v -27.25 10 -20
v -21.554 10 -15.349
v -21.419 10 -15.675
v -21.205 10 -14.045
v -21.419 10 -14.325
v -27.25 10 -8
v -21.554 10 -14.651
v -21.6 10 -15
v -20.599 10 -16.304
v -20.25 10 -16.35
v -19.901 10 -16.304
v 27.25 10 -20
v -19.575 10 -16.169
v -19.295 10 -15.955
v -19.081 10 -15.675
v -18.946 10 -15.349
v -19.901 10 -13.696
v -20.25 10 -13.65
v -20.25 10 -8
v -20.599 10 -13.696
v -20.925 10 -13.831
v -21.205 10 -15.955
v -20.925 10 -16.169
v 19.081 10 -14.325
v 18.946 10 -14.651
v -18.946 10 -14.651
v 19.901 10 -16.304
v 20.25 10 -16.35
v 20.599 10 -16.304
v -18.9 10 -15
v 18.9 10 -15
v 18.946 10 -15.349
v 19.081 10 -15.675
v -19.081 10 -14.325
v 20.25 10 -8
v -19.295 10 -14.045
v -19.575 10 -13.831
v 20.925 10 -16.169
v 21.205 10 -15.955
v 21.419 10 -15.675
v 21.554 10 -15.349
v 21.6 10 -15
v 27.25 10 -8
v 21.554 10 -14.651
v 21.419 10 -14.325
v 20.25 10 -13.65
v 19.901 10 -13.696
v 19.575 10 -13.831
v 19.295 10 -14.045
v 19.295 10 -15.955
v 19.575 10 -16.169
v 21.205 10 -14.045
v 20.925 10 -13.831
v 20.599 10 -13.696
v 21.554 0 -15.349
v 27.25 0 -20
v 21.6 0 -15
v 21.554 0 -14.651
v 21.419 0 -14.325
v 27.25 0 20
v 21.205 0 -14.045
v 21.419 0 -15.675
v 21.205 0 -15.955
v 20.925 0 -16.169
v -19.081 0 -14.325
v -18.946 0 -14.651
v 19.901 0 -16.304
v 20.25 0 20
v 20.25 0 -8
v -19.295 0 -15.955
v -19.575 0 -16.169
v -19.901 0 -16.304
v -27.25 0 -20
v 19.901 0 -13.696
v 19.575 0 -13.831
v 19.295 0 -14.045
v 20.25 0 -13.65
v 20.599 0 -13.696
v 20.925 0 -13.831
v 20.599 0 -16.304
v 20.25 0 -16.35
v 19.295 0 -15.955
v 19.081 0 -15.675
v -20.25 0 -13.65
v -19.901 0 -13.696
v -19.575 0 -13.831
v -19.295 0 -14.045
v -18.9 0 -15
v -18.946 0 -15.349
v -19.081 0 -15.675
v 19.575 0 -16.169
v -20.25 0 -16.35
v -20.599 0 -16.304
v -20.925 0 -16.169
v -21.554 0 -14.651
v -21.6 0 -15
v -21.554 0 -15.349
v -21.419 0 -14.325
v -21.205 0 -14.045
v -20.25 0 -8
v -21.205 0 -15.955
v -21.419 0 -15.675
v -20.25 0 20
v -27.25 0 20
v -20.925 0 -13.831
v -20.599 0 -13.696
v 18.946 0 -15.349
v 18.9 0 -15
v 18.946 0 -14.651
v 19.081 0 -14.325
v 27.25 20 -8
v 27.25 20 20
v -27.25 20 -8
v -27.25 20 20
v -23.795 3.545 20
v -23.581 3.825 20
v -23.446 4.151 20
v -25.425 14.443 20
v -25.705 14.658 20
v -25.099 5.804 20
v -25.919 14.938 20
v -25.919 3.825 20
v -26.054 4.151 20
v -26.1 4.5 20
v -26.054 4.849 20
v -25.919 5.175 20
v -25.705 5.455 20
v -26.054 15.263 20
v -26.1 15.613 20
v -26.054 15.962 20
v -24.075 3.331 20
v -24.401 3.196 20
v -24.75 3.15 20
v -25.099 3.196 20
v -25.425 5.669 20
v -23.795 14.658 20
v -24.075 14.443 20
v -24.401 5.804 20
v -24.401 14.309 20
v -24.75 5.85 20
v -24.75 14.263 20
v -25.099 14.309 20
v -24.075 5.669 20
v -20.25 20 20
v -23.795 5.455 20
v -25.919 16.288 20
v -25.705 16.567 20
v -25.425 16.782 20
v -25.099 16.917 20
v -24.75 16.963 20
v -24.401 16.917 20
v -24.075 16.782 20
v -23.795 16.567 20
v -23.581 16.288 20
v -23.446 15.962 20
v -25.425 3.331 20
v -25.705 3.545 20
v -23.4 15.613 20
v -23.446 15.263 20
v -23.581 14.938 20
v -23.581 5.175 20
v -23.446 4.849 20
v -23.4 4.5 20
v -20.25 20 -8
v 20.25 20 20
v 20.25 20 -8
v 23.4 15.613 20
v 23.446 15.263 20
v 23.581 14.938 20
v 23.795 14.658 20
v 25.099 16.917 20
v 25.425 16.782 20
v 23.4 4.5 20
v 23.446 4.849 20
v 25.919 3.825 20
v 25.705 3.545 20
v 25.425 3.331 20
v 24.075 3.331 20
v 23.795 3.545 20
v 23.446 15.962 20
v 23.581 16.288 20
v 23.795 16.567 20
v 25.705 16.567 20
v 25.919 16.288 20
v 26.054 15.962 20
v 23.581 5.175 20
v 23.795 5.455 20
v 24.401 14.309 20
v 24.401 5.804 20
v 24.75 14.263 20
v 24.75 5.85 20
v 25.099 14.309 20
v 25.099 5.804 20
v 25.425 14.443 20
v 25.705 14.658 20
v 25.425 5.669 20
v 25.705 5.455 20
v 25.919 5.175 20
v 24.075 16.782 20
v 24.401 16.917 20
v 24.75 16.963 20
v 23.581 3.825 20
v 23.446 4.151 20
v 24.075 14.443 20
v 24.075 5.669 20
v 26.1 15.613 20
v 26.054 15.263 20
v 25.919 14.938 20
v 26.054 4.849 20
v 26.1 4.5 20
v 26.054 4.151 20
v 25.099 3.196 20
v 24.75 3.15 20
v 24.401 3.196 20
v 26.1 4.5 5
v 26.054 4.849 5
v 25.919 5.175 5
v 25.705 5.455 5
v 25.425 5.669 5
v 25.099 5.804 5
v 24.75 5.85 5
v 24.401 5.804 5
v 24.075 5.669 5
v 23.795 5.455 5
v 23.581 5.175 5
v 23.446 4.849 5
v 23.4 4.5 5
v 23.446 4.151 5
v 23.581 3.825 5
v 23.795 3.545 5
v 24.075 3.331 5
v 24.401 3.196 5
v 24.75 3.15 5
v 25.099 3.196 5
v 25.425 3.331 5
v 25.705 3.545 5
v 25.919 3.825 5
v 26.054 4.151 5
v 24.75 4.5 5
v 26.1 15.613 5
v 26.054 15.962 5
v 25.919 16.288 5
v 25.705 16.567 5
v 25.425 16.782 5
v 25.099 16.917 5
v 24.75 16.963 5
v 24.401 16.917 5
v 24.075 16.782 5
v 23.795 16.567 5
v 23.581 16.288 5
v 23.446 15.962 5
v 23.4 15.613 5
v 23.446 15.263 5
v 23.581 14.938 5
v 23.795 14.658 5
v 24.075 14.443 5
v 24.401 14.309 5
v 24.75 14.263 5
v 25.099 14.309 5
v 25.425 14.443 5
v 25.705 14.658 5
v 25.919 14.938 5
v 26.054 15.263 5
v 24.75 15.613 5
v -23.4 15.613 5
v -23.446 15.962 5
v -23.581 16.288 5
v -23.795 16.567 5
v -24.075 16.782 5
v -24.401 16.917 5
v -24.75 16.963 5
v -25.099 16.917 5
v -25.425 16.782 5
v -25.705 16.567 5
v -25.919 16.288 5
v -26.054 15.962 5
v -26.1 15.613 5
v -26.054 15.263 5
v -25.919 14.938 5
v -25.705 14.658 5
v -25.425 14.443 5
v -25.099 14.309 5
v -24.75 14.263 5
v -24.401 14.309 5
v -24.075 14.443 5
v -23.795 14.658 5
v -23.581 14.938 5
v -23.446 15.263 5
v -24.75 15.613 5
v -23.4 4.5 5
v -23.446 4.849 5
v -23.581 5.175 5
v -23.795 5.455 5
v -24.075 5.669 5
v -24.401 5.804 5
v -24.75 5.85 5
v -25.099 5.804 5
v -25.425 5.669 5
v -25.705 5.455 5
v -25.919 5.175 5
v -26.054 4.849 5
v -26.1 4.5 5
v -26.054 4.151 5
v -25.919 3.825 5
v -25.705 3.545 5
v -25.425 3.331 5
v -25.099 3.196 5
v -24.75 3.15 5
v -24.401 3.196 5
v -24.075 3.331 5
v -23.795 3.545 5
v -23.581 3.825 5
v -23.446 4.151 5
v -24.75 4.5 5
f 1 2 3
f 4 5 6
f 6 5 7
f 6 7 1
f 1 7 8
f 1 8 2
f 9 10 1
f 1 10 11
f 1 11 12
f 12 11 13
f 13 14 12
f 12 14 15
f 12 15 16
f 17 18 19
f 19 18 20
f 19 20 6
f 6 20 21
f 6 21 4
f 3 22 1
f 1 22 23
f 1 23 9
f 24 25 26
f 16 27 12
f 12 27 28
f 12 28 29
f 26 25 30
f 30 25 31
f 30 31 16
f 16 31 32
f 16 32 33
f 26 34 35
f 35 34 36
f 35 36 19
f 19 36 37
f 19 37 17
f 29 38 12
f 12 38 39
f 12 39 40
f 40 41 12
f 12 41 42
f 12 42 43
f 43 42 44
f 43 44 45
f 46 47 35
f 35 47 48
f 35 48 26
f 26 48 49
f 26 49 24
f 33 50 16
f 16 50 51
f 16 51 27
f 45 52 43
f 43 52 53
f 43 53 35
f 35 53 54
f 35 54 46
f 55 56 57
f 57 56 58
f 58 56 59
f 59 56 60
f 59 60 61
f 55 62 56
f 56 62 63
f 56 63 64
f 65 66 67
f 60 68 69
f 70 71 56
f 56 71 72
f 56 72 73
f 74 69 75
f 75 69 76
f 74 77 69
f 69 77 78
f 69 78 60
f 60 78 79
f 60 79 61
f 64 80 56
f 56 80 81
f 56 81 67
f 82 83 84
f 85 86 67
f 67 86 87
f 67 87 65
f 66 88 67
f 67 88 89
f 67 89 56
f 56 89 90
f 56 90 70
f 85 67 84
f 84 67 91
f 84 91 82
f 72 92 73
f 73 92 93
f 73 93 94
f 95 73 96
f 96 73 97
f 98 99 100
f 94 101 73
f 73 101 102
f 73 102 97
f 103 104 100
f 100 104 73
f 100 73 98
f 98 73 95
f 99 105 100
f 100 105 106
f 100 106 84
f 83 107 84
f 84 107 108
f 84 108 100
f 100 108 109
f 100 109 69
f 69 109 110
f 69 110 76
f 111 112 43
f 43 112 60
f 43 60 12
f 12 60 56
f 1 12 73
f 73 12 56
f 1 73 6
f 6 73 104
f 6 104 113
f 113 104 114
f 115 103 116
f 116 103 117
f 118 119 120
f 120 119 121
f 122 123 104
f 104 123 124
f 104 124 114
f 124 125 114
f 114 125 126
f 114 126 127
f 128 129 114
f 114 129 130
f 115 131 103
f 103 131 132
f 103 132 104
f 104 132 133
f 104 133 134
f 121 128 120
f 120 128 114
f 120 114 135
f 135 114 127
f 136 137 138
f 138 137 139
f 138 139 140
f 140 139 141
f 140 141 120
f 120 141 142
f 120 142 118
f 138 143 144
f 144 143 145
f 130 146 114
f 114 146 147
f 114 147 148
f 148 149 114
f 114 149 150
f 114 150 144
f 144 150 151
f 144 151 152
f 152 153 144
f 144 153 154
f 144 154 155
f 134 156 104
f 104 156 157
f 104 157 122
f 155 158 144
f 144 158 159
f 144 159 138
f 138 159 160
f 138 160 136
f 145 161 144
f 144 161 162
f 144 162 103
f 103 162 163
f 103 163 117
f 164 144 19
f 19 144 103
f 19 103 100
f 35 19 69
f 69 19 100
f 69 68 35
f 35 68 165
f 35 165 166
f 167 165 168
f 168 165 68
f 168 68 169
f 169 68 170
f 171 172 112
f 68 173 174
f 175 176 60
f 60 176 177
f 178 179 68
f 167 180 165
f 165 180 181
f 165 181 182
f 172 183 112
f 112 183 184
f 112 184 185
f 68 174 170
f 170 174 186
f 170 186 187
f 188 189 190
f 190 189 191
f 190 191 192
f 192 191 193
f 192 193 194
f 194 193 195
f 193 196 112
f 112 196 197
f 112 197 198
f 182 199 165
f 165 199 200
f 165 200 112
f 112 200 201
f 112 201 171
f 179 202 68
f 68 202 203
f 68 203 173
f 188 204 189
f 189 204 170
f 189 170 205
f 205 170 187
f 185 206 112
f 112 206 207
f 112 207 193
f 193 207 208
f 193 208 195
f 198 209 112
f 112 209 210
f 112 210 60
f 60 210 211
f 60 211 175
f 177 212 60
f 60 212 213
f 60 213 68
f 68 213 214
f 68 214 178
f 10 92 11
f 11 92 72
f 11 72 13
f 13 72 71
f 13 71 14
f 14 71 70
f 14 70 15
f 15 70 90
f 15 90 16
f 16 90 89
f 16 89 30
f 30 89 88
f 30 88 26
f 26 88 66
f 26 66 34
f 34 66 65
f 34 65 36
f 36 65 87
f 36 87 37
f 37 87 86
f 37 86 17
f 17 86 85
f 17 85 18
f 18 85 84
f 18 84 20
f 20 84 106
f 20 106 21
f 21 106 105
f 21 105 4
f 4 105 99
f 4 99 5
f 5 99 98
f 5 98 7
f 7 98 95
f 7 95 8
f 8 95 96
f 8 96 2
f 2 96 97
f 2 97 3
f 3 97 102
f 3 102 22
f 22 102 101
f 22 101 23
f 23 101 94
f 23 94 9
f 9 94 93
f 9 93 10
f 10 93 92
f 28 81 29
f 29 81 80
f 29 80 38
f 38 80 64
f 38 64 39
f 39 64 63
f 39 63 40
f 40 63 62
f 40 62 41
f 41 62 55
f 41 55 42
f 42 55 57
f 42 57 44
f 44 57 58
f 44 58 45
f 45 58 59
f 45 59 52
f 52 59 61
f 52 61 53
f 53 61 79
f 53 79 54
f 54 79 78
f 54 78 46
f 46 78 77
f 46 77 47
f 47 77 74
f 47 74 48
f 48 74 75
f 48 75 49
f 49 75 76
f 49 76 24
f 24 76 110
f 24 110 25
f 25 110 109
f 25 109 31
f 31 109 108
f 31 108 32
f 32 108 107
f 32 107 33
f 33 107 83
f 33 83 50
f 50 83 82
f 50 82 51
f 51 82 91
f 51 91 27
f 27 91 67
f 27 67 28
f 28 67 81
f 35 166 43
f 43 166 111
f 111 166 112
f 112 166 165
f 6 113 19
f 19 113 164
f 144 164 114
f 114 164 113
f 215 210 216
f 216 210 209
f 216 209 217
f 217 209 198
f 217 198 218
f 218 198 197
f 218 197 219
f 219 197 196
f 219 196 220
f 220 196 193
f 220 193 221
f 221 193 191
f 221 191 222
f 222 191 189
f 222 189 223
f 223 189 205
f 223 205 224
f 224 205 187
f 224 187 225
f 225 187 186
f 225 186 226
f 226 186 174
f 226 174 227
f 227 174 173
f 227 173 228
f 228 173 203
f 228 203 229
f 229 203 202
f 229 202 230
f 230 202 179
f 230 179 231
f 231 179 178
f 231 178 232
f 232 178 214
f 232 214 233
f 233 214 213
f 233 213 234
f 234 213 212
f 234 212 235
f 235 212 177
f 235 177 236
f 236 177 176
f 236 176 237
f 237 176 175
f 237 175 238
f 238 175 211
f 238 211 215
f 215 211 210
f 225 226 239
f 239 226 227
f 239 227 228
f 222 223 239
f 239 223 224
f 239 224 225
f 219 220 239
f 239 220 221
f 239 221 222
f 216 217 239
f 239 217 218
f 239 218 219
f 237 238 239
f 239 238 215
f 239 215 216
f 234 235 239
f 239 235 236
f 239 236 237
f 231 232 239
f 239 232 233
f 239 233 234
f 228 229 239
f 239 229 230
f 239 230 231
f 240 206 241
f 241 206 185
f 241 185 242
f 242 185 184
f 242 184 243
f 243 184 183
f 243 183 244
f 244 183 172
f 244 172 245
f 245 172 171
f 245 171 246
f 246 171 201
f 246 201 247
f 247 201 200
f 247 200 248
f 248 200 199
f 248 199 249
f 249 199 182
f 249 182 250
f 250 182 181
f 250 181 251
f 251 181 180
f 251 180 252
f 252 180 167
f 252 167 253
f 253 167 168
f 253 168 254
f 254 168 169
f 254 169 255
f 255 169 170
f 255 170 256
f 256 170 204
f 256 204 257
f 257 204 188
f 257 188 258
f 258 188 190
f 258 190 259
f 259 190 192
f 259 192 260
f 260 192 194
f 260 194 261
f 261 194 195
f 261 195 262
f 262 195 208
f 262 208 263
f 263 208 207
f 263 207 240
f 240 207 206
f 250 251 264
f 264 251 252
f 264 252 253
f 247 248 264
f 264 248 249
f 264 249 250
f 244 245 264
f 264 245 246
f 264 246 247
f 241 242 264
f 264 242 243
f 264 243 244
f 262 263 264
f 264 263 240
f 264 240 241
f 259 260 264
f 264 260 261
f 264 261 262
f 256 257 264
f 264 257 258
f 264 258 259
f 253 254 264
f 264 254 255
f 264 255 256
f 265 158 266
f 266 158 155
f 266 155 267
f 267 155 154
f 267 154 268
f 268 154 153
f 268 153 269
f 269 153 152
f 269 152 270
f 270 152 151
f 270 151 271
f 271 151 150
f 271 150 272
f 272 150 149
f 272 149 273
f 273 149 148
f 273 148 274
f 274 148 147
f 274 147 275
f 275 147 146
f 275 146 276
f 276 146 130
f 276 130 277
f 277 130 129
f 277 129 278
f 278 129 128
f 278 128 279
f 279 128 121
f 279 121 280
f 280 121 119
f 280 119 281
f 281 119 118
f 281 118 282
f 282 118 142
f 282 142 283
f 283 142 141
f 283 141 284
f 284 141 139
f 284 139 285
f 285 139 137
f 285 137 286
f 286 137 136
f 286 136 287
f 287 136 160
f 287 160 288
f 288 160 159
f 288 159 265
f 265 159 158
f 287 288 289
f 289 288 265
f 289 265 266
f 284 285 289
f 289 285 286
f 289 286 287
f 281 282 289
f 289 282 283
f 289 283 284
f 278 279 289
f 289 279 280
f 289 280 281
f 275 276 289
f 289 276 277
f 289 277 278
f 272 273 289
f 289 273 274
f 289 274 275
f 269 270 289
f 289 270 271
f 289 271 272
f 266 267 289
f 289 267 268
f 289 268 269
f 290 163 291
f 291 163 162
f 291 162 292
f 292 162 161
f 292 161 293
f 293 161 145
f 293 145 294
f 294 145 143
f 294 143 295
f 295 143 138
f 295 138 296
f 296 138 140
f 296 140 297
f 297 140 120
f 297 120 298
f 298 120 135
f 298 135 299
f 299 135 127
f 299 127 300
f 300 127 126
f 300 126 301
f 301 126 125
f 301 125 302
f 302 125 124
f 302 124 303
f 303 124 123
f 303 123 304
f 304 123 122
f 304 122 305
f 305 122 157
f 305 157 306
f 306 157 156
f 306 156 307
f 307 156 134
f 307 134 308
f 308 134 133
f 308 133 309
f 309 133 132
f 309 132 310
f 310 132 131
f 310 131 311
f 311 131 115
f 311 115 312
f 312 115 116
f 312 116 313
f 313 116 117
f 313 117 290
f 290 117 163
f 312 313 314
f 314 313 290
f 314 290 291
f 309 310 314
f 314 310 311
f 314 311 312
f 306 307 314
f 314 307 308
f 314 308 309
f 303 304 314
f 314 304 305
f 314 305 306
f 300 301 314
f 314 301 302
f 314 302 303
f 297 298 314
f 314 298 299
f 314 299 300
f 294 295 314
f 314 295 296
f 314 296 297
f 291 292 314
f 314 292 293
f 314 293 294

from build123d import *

# Parameters (mm, degrees)
CROQUIS1_R              = 1.35
SALIENTE_EXTRUIR1_DEPTH = 10
CROQUIS2_W              = 7
CROQUIS2_H              = 28
SALIENTE_EXTRUIR2_DEPTH = 20
CROQUIS3_R              = 1.35
CORTAR_EXTRUIR1_DEPTH   = 15


with BuildPart() as part:
    # Croquis1 → Saliente-Extruir1 (new body)
    with BuildSketch(Plane(origin=(0, 0, 0), x_dir=(1, 0, 0), z_dir=(0, 1, 0))):
        Polygon((-20.25, -20), (-20.25, 8), (20.25, 8), (20.25, -20), (27.25, -20), (27.25, 20), (-27.25, 20), (-27.25, -20), align=None)
        with Locations(Location((-20.25, 15, 0), (0, 0, 270))):
            Circle(CROQUIS1_R, mode=Mode.SUBTRACT)
        with Locations(Location((20.25, 15, 0), (0, 0, 90))):
            Circle(CROQUIS1_R, mode=Mode.SUBTRACT)
    extrude(amount=SALIENTE_EXTRUIR1_DEPTH)

    # Croquis2 → Saliente-Extruir2 (add)
    with BuildSketch(Plane(origin=(0, 0, 0), x_dir=(1, 0, 0), z_dir=(0, 1, 0))):
        with Locations((-23.75, -6)):
            Rectangle(CROQUIS2_W, CROQUIS2_H)
        with Locations((23.75, -6)):
            Rectangle(CROQUIS2_W, CROQUIS2_H)
    extrude(amount=SALIENTE_EXTRUIR2_DEPTH)

    # Croquis3 → Cortar-Extruir1 (cut)
    with BuildSketch(Plane.XY.offset(20)):
        with Locations((-24.75, 15.612517806)):
            Circle(CROQUIS3_R)
        with Locations((-24.75, 4.5)):
            Circle(CROQUIS3_R)
        with Locations(Location((24.75, 4.5, 0), (0, 0, 180))):
            Circle(CROQUIS3_R)
        with Locations(Location((24.75, 15.612517806, 0), (0, 0, 180))):
            Circle(CROQUIS3_R)
    extrude(amount=-CORTAR_EXTRUIR1_DEPTH, mode=Mode.SUBTRACT)


solid = part.part
